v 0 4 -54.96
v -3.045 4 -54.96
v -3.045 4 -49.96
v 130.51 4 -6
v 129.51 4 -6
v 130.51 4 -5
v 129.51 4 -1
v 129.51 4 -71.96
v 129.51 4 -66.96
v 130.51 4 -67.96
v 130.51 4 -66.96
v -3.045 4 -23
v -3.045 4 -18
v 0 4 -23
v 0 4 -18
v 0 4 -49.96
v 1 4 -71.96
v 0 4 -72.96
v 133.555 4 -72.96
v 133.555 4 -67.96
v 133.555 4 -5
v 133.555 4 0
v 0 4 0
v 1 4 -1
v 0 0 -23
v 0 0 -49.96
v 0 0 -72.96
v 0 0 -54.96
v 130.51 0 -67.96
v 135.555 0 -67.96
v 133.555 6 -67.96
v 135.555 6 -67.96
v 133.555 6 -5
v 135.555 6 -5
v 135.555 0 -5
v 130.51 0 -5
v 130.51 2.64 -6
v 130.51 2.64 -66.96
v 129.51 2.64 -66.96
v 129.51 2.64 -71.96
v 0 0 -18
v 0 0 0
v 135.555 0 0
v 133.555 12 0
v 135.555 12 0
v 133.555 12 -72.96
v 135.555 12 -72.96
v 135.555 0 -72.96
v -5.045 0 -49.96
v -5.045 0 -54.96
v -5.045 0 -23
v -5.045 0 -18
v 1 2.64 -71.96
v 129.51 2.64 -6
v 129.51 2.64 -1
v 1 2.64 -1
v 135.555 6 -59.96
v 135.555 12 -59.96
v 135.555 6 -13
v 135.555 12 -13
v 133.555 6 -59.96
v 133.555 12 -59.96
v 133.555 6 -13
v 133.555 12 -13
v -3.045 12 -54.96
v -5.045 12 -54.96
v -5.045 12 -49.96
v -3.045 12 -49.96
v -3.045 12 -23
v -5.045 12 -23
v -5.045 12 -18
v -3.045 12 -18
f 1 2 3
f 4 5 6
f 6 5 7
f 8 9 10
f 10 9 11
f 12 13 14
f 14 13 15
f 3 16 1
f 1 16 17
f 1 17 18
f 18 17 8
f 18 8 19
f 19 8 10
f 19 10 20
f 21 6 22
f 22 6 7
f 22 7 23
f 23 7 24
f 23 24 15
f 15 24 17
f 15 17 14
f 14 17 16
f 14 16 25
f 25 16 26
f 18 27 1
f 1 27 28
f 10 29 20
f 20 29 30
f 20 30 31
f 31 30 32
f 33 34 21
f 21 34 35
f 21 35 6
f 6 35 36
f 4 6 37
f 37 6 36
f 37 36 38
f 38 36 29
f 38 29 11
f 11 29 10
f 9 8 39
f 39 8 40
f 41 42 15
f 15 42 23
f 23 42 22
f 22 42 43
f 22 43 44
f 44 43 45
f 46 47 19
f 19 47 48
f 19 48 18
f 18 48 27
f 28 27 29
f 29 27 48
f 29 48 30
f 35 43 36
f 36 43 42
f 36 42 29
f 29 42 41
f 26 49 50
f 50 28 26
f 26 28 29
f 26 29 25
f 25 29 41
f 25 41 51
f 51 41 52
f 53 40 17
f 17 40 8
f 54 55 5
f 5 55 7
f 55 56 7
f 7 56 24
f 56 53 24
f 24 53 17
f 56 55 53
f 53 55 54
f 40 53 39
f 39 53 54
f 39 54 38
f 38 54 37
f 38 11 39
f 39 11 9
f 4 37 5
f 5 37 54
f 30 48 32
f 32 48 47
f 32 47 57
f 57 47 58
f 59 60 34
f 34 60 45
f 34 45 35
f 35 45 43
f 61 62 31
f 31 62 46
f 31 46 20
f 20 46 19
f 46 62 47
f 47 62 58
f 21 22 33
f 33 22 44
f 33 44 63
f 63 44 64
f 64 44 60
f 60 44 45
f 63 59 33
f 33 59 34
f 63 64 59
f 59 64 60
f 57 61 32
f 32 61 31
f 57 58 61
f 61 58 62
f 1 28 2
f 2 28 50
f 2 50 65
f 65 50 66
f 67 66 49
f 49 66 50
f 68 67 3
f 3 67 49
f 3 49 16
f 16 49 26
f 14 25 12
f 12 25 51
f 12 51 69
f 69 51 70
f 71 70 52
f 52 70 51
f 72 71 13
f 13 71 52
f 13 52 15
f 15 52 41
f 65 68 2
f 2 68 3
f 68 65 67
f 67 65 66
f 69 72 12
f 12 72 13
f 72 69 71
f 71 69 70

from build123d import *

# Parameters (mm, degrees)
ESQUISSE1_W             = 130.51
ESQUISSE1_H             = 72.96
BOSS_EXTRU_4_DEPTH      = 4
ESQUISSE5_W             = 128.51
ESQUISSE5_H             = 70.96
ENL_V_MAT_EXTRU_1_DEPTH = 1.36
ESQUISSE6_W             = 60.96
ESQUISSE6_H             = 1.36
ENL_V_MAT_EXTRU_2_DEPTH = 149.70104808
ESQUISSE12_W            = 5.045005
ESQUISSE12_H            = 5
BOSS_EXTRU_10_DEPTH     = 4
ESQUISSE14_W            = 2
ESQUISSE14_H            = 5
BOSS_EXTRU_11_DEPTH     = 8
ESQUISSE15_W            = 2
ESQUISSE15_H            = 6
BOSS_EXTRU_12_DEPTH     = 8
ESQUISSE16_W            = 2
ESQUISSE16_H            = 6
BOSS_EXTRU_13_DEPTH     = 8
ESQUISSE17_W            = 5.045005
ESQUISSE17_H            = 5
BOSS_EXTRU_14_DEPTH     = 4
ESQUISSE19_W            = 2
ESQUISSE19_H            = 5
BOSS_EXTRU_15_DEPTH     = 8


with BuildPart() as part:
    # Esquisse1 → Boss.-Extru.4 (new body)
    with BuildSketch(Plane(origin=(0, 0, 0), x_dir=(1, 0, 0), z_dir=(0, 1, 0))):
        with Locations((65.255, 36.48)):
            Rectangle(ESQUISSE1_W, ESQUISSE1_H)
    extrude(amount=BOSS_EXTRU_4_DEPTH)

    # Esquisse5 → Enlèv. mat.-Extru.1 (cut)
    with BuildSketch(Plane(origin=(0, 4, 0), x_dir=(1, 0, 0), z_dir=(0, 1, 0))):
        with Locations((65.255, 36.48)):
            Rectangle(ESQUISSE5_W, ESQUISSE5_H)
    extrude(amount=-ENL_V_MAT_EXTRU_1_DEPTH, mode=Mode.SUBTRACT)

    # Esquisse6 → Enlèv. mat.-Extru.2 (cut, through all)
    with BuildSketch(Plane.ZY.offset(-129.51)):
        with Locations((-36.48, 3.32)):
            Rectangle(ESQUISSE6_W, ESQUISSE6_H)
    extrude(amount=-ENL_V_MAT_EXTRU_2_DEPTH, mode=Mode.SUBTRACT)

    # Esquisse12 → Boss.-Extru.10 (add)
    with BuildSketch(Plane.XZ):
        with Locations((133.0325025, -70.46)):
            Rectangle(ESQUISSE12_W, ESQUISSE12_H)
        with Locations((133.0325025, -2.5)):
            Rectangle(ESQUISSE12_W, ESQUISSE12_H)
    extrude(amount=-BOSS_EXTRU_10_DEPTH)

    # Esquisse14 → Boss.-Extru.11 (add)
    with BuildSketch(Plane(origin=(0, 4, 0), x_dir=(1, 0, 0), z_dir=(0, 1, 0))):
        with Locations((134.555005, 70.46)):
            Rectangle(ESQUISSE14_W, ESQUISSE14_H)
        with Locations((134.555005, 2.5)):
            Rectangle(ESQUISSE14_W, ESQUISSE14_H)
    extrude(amount=BOSS_EXTRU_11_DEPTH)

    # Esquisse15 → Boss.-Extru.12 (add)
    with BuildSketch(Plane(origin=(0, 0, -5), x_dir=(-1, 0, 0), z_dir=(0, 0, -1))):
        with Locations((-134.555005, 9)):
            Rectangle(ESQUISSE15_W, ESQUISSE15_H)
    extrude(amount=BOSS_EXTRU_12_DEPTH)

    # Esquisse16 → Boss.-Extru.13 (add)
    with BuildSketch(Plane.XY.offset(-67.96)):
        with Locations((134.555005, 9)):
            Rectangle(ESQUISSE16_W, ESQUISSE16_H)
    extrude(amount=BOSS_EXTRU_13_DEPTH)

    # Esquisse17 → Boss.-Extru.14 (add)
    with BuildSketch(Plane.XZ):
        with Locations((-2.5225025, -52.46)):
            Rectangle(ESQUISSE17_W, ESQUISSE17_H)
        with Locations((-2.5225025, -20.5)):
            Rectangle(ESQUISSE17_W, ESQUISSE17_H)
    extrude(amount=-BOSS_EXTRU_14_DEPTH)

    # Esquisse19 → Boss.-Extru.15 (add)
    with BuildSketch(Plane(origin=(0, 4, 0), x_dir=(1, 0, 0), z_dir=(0, 1, 0))):
        with Locations((-4.045005, 52.46)):
            Rectangle(ESQUISSE19_W, ESQUISSE19_H)
        with Locations((-4.045005, 20.5)):
            Rectangle(ESQUISSE19_W, ESQUISSE19_H)
    extrude(amount=BOSS_EXTRU_15_DEPTH)


solid = part.part
